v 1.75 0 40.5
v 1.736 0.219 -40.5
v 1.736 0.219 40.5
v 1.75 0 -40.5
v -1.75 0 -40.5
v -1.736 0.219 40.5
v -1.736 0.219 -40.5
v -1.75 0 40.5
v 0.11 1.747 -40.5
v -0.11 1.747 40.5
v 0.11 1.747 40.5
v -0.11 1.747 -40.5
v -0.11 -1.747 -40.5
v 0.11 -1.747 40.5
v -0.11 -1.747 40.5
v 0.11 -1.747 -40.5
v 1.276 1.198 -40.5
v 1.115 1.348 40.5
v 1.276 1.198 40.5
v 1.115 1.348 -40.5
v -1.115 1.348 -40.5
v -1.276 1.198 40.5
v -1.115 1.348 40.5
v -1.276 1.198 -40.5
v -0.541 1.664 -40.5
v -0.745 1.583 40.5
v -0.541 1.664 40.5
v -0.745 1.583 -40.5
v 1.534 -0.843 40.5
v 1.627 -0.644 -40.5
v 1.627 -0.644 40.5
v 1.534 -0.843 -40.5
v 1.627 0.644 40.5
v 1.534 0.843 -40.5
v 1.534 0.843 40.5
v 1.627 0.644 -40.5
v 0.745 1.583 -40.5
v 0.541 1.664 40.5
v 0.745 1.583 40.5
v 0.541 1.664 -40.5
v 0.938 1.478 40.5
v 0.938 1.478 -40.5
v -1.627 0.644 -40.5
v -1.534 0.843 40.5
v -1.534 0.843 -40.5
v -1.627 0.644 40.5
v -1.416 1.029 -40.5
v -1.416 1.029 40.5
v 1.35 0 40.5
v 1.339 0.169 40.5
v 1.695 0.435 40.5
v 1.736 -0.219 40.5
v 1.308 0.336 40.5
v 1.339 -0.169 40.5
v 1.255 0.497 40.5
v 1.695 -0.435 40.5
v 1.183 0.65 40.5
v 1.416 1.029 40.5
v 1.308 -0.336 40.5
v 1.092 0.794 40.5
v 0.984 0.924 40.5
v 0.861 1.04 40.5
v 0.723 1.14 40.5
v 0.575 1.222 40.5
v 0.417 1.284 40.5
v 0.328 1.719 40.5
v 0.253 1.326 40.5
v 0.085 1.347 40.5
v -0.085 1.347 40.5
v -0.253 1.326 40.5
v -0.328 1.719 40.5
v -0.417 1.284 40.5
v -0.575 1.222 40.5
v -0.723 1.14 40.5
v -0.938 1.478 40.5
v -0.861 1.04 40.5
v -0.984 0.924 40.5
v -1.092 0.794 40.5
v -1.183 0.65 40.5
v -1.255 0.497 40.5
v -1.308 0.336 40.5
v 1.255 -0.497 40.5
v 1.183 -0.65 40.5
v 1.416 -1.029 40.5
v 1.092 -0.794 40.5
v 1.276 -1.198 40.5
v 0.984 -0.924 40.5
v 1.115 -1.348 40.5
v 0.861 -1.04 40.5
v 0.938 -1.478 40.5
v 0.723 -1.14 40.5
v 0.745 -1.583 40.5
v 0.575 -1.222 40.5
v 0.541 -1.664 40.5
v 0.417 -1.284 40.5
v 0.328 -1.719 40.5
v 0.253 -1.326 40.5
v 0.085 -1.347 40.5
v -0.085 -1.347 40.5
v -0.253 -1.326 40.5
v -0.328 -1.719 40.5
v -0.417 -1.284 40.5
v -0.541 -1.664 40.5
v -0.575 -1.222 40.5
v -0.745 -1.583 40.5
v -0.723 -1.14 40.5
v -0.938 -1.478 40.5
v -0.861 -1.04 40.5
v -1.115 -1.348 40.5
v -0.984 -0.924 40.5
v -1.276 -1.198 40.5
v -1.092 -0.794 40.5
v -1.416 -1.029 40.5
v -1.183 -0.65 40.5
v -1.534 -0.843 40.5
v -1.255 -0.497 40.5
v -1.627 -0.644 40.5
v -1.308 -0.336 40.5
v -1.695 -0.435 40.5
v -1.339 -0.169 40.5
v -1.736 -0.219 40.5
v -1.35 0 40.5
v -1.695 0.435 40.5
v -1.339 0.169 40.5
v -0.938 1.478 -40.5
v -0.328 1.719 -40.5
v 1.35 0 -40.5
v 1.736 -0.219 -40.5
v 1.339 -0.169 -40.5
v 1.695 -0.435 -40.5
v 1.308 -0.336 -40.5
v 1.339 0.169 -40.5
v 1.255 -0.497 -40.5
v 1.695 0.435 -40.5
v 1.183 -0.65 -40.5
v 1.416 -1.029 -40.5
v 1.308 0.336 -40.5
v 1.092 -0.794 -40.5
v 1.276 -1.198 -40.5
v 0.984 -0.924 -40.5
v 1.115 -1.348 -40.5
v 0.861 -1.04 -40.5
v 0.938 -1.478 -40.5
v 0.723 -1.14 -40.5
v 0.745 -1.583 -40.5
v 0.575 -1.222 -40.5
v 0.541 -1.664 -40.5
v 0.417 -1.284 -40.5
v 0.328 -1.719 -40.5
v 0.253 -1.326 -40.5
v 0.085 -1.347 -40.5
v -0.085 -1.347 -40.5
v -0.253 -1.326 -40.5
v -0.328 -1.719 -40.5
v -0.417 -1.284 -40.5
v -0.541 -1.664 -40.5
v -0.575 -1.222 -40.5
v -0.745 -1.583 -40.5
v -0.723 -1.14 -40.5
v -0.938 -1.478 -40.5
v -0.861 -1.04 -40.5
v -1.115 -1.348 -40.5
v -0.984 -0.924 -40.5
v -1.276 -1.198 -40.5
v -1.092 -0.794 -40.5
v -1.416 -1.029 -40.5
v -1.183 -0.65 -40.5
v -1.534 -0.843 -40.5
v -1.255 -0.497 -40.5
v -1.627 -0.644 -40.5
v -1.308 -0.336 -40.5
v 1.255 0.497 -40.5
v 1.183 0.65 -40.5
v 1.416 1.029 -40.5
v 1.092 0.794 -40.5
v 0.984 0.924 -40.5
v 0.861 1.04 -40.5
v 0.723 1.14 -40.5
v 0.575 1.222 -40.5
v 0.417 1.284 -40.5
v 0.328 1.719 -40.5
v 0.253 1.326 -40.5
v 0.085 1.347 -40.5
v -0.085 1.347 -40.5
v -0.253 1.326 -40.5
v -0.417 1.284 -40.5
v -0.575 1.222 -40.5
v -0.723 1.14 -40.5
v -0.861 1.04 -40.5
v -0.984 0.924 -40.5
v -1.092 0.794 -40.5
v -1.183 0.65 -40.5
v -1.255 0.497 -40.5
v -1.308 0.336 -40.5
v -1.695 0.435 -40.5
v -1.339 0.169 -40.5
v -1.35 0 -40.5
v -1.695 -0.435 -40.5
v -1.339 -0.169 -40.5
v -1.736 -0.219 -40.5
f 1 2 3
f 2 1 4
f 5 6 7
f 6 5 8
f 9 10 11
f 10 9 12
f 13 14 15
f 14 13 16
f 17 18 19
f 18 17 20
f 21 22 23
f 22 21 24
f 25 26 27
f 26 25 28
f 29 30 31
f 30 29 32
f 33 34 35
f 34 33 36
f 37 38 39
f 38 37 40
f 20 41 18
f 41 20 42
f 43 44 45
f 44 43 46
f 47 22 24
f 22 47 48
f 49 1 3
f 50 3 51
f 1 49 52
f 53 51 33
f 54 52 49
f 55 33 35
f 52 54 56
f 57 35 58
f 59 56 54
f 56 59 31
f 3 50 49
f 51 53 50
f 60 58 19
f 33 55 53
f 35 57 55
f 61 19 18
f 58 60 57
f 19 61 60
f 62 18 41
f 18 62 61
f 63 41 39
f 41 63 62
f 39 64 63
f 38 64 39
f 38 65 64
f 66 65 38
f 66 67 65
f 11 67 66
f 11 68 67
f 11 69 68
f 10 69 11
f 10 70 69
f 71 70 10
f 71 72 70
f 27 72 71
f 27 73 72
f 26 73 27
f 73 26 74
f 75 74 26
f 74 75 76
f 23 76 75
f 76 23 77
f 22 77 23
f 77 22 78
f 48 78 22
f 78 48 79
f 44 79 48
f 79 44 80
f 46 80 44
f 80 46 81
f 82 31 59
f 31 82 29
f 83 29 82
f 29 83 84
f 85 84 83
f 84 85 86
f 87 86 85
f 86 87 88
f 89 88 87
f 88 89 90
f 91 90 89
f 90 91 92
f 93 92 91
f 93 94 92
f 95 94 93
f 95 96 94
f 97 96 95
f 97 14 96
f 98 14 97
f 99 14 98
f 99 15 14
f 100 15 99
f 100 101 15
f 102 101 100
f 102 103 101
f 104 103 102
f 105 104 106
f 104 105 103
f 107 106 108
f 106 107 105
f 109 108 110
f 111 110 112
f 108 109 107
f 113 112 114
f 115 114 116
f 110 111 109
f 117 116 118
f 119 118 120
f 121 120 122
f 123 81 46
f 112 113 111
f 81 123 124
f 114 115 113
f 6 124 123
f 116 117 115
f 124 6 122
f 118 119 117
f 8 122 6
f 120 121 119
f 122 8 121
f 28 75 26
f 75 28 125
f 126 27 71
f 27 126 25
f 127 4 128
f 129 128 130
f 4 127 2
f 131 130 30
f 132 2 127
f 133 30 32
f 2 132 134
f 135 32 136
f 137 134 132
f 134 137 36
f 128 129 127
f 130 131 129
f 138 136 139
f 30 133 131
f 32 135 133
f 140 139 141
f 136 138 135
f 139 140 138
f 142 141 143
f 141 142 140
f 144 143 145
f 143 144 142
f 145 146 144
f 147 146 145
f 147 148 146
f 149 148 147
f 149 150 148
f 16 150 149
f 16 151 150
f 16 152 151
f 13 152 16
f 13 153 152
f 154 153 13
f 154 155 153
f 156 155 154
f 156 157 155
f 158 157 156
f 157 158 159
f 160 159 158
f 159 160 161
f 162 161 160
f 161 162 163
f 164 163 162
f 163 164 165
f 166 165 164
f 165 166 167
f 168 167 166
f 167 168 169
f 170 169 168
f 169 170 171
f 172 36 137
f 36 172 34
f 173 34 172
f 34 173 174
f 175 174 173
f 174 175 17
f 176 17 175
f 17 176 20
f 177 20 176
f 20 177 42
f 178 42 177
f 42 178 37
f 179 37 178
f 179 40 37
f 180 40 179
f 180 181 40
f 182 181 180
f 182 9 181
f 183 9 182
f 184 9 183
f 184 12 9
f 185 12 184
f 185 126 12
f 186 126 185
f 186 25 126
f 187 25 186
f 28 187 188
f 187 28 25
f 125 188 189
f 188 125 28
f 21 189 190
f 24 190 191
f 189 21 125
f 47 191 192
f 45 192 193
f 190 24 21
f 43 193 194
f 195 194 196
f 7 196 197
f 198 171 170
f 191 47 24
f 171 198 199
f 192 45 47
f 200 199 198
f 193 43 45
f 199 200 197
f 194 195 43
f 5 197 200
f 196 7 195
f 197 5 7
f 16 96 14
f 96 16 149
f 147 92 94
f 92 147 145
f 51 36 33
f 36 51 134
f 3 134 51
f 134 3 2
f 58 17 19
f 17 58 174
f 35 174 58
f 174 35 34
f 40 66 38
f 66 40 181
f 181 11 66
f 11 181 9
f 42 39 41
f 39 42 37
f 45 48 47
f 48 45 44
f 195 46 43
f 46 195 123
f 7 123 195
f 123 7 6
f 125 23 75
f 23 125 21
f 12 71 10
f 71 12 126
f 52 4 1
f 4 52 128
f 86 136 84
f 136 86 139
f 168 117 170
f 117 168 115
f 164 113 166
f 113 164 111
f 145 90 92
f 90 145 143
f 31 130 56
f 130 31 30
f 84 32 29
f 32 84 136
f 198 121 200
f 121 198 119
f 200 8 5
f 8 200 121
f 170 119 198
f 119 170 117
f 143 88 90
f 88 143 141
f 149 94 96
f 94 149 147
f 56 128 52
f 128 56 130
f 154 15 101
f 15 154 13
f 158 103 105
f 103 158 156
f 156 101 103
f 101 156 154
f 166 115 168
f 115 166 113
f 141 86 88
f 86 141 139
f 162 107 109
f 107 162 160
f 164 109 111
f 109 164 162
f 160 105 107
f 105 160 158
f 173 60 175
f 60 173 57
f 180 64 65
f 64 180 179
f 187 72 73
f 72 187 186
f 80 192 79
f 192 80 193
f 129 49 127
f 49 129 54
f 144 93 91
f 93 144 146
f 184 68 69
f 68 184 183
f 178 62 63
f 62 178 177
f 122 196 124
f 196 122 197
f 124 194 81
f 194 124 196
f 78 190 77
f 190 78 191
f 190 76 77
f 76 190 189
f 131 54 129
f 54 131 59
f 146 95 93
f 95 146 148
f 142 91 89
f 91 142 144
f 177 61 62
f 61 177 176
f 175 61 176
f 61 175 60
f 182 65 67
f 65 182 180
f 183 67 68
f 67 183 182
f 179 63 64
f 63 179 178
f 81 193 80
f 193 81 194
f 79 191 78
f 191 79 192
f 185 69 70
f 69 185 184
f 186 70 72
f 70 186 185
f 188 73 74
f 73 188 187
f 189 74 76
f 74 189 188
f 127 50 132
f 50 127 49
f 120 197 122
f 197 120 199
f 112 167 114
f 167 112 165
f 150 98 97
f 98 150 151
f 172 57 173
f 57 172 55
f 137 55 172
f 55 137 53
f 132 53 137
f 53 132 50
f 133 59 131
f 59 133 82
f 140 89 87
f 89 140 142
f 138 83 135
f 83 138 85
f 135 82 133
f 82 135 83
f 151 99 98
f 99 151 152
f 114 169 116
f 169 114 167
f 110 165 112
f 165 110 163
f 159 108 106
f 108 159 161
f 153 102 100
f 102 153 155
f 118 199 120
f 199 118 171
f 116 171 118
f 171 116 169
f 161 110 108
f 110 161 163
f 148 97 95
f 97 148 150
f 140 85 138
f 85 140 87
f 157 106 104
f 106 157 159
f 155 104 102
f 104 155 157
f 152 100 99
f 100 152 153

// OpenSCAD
$fn = 50;


difference() {
	union() {
		translate(v = [0, 0, -40.5000000000]) {
			cylinder(h = 81, r = 1.7500000000);
		}
	}
	union() {
		translate(v = [0, 0, -100.0000000000]) {
			cylinder(h = 200, r = 1.3500000000);
		}
	}
}
